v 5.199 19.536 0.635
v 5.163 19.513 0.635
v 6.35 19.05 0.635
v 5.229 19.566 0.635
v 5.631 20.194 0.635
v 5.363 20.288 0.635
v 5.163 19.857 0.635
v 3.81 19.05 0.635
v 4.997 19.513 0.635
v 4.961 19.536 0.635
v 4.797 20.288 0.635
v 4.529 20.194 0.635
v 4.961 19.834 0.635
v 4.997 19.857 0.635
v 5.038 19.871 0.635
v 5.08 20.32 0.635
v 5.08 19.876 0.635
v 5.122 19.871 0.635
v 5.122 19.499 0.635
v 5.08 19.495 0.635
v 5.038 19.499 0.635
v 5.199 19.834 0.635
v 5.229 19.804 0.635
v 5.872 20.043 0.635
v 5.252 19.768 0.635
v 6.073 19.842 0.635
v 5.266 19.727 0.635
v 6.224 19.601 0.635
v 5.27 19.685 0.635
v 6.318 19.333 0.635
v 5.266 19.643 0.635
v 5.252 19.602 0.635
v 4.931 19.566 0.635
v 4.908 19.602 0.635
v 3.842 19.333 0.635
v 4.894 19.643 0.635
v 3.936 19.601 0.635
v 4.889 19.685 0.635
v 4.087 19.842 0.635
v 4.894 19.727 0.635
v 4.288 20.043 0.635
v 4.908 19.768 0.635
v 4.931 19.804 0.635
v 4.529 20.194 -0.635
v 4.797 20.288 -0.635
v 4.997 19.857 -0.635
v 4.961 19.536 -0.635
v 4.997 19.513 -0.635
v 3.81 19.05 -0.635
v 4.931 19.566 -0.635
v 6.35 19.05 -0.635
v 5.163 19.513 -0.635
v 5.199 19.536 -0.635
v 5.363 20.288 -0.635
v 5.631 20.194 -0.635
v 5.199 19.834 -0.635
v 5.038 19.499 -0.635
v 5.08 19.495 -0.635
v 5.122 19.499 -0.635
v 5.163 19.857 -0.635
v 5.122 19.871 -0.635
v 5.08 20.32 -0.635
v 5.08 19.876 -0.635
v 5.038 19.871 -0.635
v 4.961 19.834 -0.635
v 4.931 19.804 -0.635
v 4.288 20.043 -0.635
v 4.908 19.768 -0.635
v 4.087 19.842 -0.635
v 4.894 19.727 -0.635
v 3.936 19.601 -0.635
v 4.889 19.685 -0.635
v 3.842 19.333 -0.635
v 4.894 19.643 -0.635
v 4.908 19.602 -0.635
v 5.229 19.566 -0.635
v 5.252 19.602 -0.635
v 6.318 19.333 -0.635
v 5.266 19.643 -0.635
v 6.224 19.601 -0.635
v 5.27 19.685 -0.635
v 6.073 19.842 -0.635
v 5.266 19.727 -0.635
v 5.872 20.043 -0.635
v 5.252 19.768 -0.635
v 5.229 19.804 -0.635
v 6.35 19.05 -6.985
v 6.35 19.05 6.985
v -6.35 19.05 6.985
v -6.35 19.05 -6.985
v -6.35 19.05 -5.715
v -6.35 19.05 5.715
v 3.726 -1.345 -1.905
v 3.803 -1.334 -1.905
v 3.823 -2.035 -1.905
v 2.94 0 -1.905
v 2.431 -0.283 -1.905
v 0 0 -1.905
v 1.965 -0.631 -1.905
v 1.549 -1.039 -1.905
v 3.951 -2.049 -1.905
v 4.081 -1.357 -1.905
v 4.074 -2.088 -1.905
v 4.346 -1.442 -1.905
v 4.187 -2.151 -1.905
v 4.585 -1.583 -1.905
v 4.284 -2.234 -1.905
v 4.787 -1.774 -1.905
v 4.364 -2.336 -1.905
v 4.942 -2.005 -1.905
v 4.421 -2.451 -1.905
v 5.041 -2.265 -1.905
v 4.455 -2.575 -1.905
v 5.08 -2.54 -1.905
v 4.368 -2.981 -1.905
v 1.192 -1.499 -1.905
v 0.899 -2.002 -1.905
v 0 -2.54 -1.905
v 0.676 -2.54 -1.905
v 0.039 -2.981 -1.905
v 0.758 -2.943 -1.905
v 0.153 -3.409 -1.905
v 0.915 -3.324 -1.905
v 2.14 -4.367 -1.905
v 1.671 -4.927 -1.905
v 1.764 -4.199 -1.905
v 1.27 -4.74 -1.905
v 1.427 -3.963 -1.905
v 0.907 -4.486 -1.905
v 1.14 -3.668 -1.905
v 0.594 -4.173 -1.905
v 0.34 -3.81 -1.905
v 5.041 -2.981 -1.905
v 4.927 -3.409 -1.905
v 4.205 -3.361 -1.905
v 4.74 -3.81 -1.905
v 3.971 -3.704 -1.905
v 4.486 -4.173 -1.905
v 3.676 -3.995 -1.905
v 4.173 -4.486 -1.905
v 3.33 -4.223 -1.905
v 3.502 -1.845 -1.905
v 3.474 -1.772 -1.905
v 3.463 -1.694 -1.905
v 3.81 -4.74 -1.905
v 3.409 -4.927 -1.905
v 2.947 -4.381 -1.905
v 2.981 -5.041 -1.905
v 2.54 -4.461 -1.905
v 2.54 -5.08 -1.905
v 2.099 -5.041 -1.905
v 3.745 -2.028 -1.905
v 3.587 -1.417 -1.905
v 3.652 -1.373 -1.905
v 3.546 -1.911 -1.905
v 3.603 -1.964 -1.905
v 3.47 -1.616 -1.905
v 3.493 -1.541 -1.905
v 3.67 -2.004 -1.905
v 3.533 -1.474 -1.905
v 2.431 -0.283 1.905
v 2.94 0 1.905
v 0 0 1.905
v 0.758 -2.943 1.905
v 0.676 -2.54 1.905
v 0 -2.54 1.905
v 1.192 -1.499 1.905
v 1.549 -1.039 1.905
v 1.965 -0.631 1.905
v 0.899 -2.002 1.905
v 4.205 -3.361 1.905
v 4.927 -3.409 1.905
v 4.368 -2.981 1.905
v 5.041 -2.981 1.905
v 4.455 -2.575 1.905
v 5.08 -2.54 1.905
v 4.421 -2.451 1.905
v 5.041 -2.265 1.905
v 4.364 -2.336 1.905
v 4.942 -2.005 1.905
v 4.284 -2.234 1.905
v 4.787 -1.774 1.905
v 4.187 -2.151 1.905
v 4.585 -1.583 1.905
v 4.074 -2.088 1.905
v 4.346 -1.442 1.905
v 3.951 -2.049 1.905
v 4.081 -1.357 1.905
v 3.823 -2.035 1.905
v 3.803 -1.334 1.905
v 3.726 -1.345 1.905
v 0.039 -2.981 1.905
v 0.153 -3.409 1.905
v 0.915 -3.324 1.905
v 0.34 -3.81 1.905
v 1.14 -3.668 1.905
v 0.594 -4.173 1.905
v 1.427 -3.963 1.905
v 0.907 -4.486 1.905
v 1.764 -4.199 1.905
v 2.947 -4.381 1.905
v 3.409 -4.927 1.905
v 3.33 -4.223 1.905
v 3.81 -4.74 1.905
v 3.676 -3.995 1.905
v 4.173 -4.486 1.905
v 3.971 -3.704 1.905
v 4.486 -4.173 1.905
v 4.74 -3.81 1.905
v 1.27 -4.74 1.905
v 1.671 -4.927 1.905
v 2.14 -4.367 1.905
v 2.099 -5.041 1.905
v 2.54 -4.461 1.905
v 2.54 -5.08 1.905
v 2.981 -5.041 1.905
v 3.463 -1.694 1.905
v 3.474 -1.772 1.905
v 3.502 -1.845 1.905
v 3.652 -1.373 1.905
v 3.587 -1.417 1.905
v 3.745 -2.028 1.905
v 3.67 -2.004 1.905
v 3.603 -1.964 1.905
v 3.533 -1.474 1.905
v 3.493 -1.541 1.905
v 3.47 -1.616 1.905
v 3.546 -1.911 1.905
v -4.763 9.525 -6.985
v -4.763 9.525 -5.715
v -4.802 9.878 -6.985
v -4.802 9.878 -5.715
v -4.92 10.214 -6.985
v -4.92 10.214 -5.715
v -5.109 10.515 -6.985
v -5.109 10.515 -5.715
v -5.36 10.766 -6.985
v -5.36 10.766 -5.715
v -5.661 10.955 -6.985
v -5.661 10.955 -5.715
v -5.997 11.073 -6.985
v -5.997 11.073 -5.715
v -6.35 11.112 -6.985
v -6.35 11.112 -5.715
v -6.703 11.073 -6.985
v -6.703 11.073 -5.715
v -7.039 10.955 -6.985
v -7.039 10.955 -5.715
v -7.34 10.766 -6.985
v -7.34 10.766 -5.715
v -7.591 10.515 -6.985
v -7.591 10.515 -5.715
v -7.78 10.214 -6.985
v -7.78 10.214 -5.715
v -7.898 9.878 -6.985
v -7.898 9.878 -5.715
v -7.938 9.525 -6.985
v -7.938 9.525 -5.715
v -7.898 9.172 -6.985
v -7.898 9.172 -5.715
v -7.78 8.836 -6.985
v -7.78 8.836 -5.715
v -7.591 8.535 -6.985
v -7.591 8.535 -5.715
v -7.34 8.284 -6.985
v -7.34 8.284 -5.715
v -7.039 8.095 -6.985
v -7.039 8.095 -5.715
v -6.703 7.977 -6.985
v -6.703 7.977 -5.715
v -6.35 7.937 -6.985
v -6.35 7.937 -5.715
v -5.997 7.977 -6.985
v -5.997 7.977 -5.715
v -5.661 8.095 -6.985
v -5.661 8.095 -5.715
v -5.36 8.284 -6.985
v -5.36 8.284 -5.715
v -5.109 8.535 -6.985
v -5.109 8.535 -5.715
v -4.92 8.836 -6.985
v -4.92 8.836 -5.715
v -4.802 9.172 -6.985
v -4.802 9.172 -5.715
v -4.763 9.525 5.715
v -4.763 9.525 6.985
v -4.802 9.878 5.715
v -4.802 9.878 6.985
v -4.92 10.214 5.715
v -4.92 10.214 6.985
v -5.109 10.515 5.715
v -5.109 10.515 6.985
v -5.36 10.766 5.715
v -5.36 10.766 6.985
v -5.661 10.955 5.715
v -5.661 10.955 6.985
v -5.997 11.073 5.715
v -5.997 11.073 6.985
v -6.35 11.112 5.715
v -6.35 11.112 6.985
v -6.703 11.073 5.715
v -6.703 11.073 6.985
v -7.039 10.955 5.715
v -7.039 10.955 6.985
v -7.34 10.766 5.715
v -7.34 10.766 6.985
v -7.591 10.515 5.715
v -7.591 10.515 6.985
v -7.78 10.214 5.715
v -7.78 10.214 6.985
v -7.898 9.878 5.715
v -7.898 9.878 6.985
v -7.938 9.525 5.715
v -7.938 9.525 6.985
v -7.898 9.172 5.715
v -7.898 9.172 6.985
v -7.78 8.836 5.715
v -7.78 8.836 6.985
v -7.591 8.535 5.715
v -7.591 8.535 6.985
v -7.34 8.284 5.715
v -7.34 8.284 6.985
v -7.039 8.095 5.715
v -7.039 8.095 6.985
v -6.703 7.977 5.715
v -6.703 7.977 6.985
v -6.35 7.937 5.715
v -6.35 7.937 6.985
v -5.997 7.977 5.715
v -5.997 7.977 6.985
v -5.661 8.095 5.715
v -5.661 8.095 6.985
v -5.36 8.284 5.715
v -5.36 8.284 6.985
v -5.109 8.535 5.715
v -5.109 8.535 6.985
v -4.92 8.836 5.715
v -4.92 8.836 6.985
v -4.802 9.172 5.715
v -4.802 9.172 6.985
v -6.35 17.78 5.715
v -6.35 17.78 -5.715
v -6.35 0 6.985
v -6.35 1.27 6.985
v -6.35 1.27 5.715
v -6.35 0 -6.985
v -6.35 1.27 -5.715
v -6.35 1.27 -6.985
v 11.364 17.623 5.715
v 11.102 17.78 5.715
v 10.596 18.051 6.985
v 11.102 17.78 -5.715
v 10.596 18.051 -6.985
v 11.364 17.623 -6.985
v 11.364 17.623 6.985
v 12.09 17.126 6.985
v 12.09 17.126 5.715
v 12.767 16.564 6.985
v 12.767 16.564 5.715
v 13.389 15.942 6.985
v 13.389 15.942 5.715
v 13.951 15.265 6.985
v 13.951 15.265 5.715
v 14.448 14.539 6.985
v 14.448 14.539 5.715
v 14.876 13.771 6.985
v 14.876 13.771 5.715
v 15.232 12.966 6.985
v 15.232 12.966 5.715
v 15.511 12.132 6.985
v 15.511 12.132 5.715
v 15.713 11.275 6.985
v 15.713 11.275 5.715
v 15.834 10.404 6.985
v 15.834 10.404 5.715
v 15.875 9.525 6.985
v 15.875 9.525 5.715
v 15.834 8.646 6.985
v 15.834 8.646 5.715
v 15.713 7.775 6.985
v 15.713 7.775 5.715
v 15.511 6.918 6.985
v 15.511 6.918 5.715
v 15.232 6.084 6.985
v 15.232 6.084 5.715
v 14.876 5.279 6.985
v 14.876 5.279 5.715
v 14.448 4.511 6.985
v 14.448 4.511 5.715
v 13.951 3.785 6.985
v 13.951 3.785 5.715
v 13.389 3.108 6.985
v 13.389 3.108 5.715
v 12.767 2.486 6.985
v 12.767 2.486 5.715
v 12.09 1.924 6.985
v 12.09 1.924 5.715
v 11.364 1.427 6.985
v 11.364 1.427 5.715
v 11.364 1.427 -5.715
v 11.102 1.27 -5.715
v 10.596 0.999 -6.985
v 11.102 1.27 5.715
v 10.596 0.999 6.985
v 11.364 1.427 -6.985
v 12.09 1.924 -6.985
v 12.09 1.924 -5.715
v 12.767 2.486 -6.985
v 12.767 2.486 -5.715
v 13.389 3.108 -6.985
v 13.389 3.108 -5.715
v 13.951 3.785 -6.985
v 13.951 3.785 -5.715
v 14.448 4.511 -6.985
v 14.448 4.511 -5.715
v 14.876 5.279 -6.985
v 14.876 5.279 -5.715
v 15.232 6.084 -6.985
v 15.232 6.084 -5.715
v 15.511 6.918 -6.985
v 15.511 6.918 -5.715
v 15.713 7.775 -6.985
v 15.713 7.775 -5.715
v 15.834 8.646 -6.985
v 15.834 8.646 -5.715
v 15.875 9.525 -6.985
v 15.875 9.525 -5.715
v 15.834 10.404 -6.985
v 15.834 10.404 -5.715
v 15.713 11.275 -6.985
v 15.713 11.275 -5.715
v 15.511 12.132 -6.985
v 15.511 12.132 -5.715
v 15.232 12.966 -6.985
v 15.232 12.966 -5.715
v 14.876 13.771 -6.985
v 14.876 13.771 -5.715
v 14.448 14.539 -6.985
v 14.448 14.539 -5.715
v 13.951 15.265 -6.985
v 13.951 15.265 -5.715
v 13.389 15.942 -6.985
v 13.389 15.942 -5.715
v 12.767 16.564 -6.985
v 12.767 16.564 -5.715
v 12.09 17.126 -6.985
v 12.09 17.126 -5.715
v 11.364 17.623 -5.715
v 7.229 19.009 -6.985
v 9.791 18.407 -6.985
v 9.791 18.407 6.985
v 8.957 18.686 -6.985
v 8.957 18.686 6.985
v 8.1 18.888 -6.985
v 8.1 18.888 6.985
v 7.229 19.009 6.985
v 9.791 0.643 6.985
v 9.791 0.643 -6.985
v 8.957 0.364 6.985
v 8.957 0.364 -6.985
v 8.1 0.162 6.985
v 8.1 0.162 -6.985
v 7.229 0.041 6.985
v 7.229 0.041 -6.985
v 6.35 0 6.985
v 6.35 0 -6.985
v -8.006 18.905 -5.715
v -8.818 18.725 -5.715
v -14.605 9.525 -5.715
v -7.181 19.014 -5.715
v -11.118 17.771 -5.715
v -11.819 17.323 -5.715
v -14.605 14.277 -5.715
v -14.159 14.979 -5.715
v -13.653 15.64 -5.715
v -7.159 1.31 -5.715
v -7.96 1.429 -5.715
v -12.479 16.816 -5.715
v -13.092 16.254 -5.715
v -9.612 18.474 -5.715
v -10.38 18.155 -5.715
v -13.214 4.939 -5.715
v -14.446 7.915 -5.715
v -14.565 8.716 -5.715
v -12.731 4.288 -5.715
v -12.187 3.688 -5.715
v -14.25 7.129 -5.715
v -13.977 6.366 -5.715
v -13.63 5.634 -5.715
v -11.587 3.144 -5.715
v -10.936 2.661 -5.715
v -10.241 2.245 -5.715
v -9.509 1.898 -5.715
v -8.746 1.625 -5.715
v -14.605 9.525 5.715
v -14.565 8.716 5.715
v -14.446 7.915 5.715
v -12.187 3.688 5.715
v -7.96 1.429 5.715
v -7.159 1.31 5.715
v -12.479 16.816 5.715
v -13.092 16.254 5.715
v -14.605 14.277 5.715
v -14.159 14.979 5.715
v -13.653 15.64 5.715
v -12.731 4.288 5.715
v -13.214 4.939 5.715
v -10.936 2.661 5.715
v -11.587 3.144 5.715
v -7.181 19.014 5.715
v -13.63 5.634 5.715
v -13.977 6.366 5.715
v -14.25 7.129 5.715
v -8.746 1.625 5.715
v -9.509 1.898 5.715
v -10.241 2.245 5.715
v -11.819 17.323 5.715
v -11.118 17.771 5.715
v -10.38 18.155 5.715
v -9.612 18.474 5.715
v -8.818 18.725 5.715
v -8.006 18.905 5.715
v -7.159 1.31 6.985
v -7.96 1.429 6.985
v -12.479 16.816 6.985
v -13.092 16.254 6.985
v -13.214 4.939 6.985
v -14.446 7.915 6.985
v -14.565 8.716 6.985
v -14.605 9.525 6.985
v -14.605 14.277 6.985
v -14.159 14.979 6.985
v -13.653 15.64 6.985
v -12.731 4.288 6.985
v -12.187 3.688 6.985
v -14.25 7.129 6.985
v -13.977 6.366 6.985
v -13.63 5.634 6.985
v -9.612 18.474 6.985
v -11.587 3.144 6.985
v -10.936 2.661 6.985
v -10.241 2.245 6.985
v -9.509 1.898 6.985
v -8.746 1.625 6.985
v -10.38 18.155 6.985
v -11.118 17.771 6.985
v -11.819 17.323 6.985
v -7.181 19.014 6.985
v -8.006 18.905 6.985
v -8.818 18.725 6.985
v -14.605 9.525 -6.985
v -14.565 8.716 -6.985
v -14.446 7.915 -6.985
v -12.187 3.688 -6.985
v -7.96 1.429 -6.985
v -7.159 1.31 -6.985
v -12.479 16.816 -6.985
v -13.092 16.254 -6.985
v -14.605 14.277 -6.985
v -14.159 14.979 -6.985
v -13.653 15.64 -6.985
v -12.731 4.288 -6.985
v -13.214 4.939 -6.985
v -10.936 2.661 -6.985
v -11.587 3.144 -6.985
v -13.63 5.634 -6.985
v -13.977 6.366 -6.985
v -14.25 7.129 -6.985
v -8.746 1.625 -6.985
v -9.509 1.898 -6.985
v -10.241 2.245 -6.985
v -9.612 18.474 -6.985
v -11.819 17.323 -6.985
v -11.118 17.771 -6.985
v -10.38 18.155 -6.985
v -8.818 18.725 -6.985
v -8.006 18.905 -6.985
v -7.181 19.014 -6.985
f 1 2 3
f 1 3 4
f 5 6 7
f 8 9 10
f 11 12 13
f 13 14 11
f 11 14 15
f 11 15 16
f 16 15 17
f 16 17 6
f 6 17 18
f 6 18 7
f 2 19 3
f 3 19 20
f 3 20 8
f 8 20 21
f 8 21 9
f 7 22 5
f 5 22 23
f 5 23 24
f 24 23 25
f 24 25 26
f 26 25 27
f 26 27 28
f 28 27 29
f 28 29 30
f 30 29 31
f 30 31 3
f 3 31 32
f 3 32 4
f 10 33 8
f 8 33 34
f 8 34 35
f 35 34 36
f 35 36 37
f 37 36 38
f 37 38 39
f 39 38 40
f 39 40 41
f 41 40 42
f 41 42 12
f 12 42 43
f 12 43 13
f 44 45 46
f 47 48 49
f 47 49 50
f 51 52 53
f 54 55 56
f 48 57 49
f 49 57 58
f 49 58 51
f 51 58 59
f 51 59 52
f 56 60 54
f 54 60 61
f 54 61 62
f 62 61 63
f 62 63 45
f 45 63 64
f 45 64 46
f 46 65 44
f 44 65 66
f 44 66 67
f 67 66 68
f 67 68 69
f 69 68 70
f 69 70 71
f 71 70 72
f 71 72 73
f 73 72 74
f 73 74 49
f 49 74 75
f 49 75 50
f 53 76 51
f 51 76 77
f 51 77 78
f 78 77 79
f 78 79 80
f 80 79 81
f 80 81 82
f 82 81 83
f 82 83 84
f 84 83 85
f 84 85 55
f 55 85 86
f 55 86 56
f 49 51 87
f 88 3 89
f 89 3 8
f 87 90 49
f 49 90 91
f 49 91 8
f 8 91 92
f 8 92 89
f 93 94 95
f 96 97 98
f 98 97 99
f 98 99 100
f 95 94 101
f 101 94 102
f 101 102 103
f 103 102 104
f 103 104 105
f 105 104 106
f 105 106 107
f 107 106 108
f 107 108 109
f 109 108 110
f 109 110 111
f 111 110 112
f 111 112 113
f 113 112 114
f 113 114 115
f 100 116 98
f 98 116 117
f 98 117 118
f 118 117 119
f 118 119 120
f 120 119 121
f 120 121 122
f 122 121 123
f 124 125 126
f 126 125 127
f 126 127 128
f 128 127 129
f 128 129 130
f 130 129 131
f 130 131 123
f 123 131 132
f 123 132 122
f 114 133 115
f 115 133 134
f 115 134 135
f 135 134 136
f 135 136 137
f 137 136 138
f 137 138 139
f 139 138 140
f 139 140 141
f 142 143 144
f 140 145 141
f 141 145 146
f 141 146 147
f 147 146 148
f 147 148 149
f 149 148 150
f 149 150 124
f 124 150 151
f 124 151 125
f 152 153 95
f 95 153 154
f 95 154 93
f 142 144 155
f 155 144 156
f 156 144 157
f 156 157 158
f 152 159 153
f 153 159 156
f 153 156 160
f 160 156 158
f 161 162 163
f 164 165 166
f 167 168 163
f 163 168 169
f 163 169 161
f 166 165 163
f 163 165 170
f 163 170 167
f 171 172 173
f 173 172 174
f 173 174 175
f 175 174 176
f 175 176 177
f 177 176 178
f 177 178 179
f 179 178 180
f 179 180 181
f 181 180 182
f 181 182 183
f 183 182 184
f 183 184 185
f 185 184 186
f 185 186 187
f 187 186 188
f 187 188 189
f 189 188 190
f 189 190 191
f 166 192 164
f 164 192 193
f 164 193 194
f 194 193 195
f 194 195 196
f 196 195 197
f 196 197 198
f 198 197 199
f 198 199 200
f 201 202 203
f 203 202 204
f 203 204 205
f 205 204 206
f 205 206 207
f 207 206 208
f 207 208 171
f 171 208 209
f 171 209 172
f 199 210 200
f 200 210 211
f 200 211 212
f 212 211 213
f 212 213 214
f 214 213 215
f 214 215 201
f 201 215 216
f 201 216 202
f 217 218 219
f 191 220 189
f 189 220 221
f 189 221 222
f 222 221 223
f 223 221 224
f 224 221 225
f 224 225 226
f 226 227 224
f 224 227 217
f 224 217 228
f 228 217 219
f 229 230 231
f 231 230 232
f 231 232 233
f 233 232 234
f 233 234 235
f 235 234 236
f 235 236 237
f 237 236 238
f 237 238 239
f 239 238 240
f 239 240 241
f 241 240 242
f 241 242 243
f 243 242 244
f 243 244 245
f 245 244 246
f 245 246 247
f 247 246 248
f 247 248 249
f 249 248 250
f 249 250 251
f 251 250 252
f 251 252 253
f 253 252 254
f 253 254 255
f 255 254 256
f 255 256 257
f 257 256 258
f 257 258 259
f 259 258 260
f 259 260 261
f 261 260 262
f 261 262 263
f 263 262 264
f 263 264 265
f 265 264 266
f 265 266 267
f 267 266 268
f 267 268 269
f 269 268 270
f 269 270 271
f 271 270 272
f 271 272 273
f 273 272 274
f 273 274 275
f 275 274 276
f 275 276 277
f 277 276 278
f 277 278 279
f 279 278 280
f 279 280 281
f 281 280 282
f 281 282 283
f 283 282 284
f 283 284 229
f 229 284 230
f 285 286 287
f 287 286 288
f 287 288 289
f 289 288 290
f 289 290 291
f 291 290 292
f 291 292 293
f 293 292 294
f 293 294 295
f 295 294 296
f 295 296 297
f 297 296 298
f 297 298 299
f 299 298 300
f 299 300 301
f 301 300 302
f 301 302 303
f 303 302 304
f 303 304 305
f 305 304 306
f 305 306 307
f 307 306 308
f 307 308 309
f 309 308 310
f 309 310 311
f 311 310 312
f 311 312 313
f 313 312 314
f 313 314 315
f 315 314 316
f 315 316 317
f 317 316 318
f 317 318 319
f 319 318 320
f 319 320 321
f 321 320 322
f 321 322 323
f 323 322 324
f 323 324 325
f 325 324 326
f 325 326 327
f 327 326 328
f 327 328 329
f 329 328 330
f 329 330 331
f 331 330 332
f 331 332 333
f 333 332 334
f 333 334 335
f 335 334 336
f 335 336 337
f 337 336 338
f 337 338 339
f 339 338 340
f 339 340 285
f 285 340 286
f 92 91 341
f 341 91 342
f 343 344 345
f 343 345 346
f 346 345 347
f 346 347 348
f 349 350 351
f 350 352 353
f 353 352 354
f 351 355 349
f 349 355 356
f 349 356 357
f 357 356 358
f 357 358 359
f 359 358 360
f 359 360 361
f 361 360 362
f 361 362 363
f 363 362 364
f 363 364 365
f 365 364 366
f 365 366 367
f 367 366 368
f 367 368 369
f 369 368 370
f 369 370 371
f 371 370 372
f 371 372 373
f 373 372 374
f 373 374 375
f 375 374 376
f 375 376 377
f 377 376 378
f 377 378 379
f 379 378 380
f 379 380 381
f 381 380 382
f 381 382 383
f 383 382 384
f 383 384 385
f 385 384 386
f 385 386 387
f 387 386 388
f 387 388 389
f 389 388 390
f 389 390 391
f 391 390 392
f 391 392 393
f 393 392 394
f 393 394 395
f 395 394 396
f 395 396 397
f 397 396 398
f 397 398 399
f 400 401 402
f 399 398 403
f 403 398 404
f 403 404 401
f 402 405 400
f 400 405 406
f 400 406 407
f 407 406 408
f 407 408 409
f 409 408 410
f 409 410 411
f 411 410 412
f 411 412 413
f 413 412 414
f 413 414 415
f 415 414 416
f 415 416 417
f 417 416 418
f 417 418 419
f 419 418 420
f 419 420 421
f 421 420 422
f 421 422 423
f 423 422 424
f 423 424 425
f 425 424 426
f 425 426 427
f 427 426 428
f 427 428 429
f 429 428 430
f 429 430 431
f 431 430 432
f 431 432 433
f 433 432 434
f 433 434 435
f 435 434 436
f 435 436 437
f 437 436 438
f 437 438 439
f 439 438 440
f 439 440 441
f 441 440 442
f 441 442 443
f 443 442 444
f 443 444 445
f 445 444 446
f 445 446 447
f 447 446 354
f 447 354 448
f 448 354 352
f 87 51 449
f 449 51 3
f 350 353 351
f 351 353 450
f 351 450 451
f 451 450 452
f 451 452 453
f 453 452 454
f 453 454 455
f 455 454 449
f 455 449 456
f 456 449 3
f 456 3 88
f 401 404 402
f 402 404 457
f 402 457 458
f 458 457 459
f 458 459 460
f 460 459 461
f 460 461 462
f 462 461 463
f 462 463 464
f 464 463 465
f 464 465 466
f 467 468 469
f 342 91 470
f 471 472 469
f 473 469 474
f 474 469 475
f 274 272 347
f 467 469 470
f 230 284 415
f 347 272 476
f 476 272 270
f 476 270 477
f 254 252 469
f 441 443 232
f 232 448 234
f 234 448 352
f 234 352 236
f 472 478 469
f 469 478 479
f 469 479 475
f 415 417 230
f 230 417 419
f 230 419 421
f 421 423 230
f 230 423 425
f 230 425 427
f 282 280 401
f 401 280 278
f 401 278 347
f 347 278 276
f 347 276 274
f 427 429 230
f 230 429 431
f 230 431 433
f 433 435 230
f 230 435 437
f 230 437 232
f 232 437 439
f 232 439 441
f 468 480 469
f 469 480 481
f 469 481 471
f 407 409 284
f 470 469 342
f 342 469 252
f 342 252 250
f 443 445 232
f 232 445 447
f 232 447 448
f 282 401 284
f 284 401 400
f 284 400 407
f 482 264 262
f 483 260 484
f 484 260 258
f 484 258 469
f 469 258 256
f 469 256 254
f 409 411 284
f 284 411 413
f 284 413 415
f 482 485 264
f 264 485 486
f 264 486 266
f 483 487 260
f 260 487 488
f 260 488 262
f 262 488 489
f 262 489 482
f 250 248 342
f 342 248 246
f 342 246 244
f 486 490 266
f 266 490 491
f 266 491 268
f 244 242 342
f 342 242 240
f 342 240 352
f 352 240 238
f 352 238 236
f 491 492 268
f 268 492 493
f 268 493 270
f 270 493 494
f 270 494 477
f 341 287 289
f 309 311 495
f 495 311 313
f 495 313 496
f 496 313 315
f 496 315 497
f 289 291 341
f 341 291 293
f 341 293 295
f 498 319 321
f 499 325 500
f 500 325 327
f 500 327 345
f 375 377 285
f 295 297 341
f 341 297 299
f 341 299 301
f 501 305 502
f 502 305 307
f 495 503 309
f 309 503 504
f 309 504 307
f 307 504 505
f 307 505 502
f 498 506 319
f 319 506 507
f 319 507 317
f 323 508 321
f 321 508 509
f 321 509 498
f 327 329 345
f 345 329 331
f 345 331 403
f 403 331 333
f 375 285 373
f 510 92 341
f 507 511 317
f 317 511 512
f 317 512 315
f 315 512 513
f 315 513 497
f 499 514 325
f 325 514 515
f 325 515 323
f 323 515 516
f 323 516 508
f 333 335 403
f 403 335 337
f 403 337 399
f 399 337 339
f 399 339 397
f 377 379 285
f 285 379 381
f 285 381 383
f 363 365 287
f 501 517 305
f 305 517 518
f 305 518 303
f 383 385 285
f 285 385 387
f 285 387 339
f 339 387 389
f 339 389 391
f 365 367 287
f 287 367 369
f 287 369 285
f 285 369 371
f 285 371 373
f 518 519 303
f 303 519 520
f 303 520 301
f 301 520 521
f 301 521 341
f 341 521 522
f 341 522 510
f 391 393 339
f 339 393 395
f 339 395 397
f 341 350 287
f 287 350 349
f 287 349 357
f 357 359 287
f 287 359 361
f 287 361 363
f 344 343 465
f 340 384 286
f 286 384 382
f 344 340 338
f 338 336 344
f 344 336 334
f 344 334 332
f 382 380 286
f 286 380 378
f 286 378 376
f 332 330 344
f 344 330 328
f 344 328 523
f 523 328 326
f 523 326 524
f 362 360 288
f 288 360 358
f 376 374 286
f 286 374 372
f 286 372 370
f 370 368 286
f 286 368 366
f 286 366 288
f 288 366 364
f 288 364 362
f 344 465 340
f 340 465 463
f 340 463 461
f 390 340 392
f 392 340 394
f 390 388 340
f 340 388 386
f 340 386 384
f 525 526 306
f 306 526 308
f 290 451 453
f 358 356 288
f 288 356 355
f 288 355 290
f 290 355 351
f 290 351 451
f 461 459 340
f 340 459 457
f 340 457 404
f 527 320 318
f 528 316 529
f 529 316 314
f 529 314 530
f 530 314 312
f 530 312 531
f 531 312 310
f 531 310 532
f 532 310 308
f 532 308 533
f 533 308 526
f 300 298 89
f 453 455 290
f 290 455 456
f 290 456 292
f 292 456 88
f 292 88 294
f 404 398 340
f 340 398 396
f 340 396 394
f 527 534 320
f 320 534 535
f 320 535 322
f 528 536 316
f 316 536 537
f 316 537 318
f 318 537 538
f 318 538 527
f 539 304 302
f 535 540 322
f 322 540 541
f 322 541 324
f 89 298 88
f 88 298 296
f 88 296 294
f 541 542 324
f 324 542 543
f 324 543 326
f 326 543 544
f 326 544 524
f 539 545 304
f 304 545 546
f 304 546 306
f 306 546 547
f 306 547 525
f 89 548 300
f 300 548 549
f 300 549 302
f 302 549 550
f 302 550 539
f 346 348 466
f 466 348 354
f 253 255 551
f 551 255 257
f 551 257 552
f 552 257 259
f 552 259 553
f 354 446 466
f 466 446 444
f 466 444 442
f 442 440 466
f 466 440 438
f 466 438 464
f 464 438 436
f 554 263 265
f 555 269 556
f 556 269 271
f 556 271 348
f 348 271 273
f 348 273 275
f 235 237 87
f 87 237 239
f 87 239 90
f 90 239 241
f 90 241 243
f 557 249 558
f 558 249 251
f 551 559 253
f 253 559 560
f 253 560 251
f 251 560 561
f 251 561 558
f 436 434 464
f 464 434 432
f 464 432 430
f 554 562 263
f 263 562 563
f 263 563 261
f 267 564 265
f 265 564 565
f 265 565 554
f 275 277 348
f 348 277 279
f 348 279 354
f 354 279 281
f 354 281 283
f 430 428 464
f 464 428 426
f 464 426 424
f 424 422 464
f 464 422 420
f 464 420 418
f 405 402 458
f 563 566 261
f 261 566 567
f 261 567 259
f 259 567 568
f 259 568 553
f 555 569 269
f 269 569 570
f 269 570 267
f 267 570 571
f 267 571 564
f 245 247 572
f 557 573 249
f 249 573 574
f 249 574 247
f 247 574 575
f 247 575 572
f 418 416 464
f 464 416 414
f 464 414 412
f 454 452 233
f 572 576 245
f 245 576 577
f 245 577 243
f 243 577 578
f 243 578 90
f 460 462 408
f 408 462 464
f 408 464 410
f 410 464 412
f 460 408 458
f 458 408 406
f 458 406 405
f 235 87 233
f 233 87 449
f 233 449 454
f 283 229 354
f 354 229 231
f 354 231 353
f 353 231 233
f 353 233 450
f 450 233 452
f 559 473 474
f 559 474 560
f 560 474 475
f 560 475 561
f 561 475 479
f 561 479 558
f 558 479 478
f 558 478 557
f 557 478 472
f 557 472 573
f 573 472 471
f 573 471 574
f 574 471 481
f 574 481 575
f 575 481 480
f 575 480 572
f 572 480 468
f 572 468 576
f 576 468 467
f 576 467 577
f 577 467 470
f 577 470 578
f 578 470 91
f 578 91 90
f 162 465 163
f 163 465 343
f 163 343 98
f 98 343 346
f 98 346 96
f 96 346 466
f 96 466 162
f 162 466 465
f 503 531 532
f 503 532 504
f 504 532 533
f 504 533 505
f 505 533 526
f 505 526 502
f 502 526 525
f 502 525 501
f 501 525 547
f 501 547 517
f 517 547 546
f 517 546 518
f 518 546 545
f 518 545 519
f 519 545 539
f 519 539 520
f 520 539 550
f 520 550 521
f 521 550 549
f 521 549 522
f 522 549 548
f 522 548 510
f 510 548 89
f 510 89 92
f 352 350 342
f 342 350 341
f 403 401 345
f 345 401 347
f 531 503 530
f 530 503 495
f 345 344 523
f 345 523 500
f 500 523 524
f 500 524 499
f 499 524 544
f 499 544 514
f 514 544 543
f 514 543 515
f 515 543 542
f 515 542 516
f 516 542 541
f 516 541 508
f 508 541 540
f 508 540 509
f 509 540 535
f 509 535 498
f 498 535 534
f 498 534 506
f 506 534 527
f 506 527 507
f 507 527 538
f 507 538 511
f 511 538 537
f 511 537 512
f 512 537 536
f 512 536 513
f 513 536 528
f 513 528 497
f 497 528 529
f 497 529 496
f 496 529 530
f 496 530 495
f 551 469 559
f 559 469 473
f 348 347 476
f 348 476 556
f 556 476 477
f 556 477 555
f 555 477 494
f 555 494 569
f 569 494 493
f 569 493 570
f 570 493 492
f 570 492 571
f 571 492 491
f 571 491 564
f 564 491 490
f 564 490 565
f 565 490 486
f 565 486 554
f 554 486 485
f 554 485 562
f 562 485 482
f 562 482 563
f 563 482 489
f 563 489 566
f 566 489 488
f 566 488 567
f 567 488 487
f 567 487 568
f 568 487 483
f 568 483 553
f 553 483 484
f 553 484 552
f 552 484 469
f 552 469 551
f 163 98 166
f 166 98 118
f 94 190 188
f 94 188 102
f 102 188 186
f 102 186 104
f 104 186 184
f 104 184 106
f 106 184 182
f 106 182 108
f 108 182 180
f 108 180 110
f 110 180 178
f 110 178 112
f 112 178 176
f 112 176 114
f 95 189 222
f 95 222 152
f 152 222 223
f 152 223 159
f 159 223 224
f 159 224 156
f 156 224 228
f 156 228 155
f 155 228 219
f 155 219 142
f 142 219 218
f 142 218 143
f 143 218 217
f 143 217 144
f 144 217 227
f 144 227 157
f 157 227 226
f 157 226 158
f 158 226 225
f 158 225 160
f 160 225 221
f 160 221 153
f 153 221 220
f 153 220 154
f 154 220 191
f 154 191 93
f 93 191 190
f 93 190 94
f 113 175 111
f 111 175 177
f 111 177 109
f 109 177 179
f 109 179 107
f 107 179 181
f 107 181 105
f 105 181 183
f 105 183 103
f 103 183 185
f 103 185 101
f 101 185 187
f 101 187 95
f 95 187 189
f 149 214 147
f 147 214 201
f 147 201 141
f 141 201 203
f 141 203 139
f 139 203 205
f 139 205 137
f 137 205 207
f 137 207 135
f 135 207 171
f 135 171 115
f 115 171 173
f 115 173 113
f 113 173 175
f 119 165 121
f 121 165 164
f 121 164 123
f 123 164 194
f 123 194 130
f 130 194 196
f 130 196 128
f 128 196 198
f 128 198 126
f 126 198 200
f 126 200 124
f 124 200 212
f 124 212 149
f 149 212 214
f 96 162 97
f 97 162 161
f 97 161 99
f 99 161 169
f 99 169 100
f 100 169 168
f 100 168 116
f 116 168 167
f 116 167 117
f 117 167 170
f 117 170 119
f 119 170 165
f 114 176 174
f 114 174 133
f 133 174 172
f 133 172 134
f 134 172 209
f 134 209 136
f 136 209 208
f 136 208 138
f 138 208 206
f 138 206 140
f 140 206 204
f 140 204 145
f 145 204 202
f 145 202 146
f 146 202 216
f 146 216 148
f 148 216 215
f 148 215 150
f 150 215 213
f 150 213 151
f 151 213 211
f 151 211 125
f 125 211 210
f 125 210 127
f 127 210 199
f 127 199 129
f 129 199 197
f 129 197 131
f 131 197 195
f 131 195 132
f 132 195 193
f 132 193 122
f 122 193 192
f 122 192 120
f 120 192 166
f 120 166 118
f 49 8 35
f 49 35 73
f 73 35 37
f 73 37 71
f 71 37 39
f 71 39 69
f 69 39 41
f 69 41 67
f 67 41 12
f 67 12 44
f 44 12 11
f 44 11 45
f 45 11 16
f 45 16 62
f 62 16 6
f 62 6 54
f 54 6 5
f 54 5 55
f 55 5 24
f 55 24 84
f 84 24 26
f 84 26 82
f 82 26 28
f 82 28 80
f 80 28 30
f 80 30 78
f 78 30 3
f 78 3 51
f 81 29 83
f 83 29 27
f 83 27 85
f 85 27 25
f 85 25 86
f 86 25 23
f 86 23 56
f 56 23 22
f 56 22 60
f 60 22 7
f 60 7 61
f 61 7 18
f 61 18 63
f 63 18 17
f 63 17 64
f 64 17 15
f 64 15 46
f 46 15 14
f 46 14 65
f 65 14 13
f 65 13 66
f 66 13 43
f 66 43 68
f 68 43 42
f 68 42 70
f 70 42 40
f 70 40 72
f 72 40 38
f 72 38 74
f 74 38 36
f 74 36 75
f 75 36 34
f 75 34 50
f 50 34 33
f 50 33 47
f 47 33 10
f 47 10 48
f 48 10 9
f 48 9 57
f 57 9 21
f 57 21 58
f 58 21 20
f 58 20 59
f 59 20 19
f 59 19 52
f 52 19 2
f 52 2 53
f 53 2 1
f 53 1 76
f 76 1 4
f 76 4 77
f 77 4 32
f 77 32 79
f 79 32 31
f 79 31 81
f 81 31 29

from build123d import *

# Parameters (mm, degrees)
SKETCH1_W           = 31.75
SKETCH1_H           = 19.05
BOSS_EXTRUDE1_DEPTH = 19.05
SKETCH2_R           = 1.5875
CUT_EXTRUDE2_DEPTH  = 19.05
SKETCH3_W           = 31.75
SKETCH3_H           = 2.54
SKETCH3_W_2         = 9.525
SKETCH3_H_2         = 11.43
CUT_EXTRUDE3_DEPTH  = 19.05
SKETCH4_W           = 11.43
SKETCH4_H           = 16.51
CUT_EXTRUDE4_DEPTH  = 50.8
CUT_EXTRUDE5_DEPTH  = 19.05
SKETCH6_W           = 5.08
SKETCH6_H           = 3.81
BOSS_EXTRUDE2_DEPTH = 7.62
CUT_EXTRUDE6_DEPTH  = 19.05
SKETCH8_W           = 2.54
SKETCH8_H           = 1.27
BOSS_EXTRUDE3_DEPTH = 1.27
SKETCH9_R           = 0.1905
CUT_EXTRUDE7_DEPTH  = 19.05


with BuildPart() as part:
    # Sketch1 → Boss-Extrude1 (new body)
    with BuildSketch(Plane(origin=(0, 0, 0), x_dir=(1, 0, 0), z_dir=(0, 1, 0))):
        Rectangle(SKETCH1_W, SKETCH1_H)
    extrude(amount=BOSS_EXTRUDE1_DEPTH)

    # Sketch2 → Cut-Extrude2 (cut)
    with BuildSketch(Plane.XY.offset(9.525)):
        with Locations((-6.35, 9.525)):
            Circle(SKETCH2_R)
        with BuildLine():
            ThreePointArc((-6.35, 19.05), (-15.875, 9.525), (-6.35, 0))
            ThreePointArc((-6.35, 0), (-27.315146333, 9.525), (-6.35, 19.05))
        make_face()
        with BuildLine():
            ThreePointArc((6.35, 0), (15.875, 9.525), (6.35, 19.05))
            ThreePointArc((6.35, 19.05), (24.948138119, 9.525), (6.35, 0))
        make_face()
    extrude(amount=-CUT_EXTRUDE2_DEPTH, mode=Mode.SUBTRACT)

    # Sketch3 → Cut-Extrude3 (cut)
    with BuildSketch(Plane(origin=(0, 19.05, 0), x_dir=(1, 0, 0), z_dir=(0, 1, 0))):
        with Locations((0, 8.255)):
            Rectangle(SKETCH3_W, SKETCH3_H)
        with Locations((0, -8.255)):
            Rectangle(SKETCH3_W, SKETCH3_H)
        with Locations((-11.1125, 0)):
            Rectangle(SKETCH3_W_2, SKETCH3_H_2)
    extrude(amount=-CUT_EXTRUDE3_DEPTH, mode=Mode.SUBTRACT)

    # Sketch4 → Cut-Extrude4 (cut)
    with BuildSketch(Plane(origin=(-15.875, 0, 0), x_dir=(0, 0, -1), z_dir=(1, 0, 0))):
        with Locations((0, 9.525)):
            Rectangle(SKETCH4_W, SKETCH4_H)
    extrude(amount=CUT_EXTRUDE4_DEPTH, mode=Mode.SUBTRACT)

    # Sketch5 → Cut-Extrude5 (cut)
    with BuildSketch(Plane.XY.offset(9.525)):
        with BuildLine():
            Line((-14.605, 17.4863926), (-18.31070608, 1.27))
            Line((-18.31070608, 1.27), (-18.31070608, 0))
            Line((-18.31070608, 0), (-6.35, 0))
            Line((-6.35, 0), (-6.35, 1.27))
            ThreePointArc((-6.35, 1.27), (-12.187166479, 3.687833521), (-14.605, 9.525))
            Line((-14.605, 9.525), (-14.605, 17.4863926))
        make_face()
    extrude(amount=-CUT_EXTRUDE5_DEPTH, mode=Mode.SUBTRACT)

    # Sketch6 → Boss-Extrude2 (add)
    with BuildSketch(Plane(origin=(0, 0, 0), x_dir=(1, 0, 0), z_dir=(0, 1, 0))):
        with Locations((2.54, 0)):
            Rectangle(SKETCH6_W, SKETCH6_H)
    extrude(amount=-BOSS_EXTRUDE2_DEPTH)

    # Sketch7 → Cut-Extrude6 (cut)
    with BuildSketch(Plane.XY.offset(9.525)):
        with BuildLine():
            Line((0, -2.54), (0, 0))
            ThreePointArc((0, 0), (2.54, -9.543763037), (5.08, 0))
            Line((5.08, 0), (2.940211157, 0))
            ThreePointArc((2.940211157, 0), (1.549192819, -1.039121584), (0.676226805, -2.54))
            ThreePointArc((0.676226805, -2.54), (1.276666453, -3.82212392), (2.54, -4.461152767))
            ThreePointArc((2.54, -4.461152767), (3.830489938, -3.856329433), (4.454963278, -2.575232796))
            ThreePointArc((4.454963278, -2.575232796), (4.237571766, -2.189951454), (3.823346179, -2.034651919))
            ThreePointArc((3.823346179, -2.034651919), (3.463036915, -1.694231845), (3.803456989, -1.333922582))
            ThreePointArc((3.803456989, -1.333922582), (4.691515307, -1.672580577), (5.08, -2.54))
            ThreePointArc((5.08, -2.54), (4.336051224, -4.336051224), (2.54, -5.08))
            ThreePointArc((2.54, -5.08), (0.743948776, -4.336051224), (0, -2.54))
        make_face()
    extrude(amount=-CUT_EXTRUDE6_DEPTH, mode=Mode.SUBTRACT)

    # Sketch8 → Boss-Extrude3 (add)
    with BuildSketch(Plane(origin=(0, 19.05, 0), x_dir=(1, 0, 0), z_dir=(0, 1, 0))):
        with Locations((5.08, 0)):
            Rectangle(SKETCH8_W, SKETCH8_H)
    extrude(amount=BOSS_EXTRUDE3_DEPTH)

    # Sketch9 → Cut-Extrude7 (cut)
    with BuildSketch(Plane.XY.offset(9.525)):
        with Locations((5.08, 19.685)):
            Circle(SKETCH9_R)
        with BuildLine():
            ThreePointArc((3.81, 19.05), (5.08, 20.32), (6.35, 19.05))
            ThreePointArc((6.35, 19.05), (5.08, 21.265981124), (3.81, 19.05))
        make_face()
    extrude(amount=-CUT_EXTRUDE7_DEPTH, mode=Mode.SUBTRACT)


solid = part.part
